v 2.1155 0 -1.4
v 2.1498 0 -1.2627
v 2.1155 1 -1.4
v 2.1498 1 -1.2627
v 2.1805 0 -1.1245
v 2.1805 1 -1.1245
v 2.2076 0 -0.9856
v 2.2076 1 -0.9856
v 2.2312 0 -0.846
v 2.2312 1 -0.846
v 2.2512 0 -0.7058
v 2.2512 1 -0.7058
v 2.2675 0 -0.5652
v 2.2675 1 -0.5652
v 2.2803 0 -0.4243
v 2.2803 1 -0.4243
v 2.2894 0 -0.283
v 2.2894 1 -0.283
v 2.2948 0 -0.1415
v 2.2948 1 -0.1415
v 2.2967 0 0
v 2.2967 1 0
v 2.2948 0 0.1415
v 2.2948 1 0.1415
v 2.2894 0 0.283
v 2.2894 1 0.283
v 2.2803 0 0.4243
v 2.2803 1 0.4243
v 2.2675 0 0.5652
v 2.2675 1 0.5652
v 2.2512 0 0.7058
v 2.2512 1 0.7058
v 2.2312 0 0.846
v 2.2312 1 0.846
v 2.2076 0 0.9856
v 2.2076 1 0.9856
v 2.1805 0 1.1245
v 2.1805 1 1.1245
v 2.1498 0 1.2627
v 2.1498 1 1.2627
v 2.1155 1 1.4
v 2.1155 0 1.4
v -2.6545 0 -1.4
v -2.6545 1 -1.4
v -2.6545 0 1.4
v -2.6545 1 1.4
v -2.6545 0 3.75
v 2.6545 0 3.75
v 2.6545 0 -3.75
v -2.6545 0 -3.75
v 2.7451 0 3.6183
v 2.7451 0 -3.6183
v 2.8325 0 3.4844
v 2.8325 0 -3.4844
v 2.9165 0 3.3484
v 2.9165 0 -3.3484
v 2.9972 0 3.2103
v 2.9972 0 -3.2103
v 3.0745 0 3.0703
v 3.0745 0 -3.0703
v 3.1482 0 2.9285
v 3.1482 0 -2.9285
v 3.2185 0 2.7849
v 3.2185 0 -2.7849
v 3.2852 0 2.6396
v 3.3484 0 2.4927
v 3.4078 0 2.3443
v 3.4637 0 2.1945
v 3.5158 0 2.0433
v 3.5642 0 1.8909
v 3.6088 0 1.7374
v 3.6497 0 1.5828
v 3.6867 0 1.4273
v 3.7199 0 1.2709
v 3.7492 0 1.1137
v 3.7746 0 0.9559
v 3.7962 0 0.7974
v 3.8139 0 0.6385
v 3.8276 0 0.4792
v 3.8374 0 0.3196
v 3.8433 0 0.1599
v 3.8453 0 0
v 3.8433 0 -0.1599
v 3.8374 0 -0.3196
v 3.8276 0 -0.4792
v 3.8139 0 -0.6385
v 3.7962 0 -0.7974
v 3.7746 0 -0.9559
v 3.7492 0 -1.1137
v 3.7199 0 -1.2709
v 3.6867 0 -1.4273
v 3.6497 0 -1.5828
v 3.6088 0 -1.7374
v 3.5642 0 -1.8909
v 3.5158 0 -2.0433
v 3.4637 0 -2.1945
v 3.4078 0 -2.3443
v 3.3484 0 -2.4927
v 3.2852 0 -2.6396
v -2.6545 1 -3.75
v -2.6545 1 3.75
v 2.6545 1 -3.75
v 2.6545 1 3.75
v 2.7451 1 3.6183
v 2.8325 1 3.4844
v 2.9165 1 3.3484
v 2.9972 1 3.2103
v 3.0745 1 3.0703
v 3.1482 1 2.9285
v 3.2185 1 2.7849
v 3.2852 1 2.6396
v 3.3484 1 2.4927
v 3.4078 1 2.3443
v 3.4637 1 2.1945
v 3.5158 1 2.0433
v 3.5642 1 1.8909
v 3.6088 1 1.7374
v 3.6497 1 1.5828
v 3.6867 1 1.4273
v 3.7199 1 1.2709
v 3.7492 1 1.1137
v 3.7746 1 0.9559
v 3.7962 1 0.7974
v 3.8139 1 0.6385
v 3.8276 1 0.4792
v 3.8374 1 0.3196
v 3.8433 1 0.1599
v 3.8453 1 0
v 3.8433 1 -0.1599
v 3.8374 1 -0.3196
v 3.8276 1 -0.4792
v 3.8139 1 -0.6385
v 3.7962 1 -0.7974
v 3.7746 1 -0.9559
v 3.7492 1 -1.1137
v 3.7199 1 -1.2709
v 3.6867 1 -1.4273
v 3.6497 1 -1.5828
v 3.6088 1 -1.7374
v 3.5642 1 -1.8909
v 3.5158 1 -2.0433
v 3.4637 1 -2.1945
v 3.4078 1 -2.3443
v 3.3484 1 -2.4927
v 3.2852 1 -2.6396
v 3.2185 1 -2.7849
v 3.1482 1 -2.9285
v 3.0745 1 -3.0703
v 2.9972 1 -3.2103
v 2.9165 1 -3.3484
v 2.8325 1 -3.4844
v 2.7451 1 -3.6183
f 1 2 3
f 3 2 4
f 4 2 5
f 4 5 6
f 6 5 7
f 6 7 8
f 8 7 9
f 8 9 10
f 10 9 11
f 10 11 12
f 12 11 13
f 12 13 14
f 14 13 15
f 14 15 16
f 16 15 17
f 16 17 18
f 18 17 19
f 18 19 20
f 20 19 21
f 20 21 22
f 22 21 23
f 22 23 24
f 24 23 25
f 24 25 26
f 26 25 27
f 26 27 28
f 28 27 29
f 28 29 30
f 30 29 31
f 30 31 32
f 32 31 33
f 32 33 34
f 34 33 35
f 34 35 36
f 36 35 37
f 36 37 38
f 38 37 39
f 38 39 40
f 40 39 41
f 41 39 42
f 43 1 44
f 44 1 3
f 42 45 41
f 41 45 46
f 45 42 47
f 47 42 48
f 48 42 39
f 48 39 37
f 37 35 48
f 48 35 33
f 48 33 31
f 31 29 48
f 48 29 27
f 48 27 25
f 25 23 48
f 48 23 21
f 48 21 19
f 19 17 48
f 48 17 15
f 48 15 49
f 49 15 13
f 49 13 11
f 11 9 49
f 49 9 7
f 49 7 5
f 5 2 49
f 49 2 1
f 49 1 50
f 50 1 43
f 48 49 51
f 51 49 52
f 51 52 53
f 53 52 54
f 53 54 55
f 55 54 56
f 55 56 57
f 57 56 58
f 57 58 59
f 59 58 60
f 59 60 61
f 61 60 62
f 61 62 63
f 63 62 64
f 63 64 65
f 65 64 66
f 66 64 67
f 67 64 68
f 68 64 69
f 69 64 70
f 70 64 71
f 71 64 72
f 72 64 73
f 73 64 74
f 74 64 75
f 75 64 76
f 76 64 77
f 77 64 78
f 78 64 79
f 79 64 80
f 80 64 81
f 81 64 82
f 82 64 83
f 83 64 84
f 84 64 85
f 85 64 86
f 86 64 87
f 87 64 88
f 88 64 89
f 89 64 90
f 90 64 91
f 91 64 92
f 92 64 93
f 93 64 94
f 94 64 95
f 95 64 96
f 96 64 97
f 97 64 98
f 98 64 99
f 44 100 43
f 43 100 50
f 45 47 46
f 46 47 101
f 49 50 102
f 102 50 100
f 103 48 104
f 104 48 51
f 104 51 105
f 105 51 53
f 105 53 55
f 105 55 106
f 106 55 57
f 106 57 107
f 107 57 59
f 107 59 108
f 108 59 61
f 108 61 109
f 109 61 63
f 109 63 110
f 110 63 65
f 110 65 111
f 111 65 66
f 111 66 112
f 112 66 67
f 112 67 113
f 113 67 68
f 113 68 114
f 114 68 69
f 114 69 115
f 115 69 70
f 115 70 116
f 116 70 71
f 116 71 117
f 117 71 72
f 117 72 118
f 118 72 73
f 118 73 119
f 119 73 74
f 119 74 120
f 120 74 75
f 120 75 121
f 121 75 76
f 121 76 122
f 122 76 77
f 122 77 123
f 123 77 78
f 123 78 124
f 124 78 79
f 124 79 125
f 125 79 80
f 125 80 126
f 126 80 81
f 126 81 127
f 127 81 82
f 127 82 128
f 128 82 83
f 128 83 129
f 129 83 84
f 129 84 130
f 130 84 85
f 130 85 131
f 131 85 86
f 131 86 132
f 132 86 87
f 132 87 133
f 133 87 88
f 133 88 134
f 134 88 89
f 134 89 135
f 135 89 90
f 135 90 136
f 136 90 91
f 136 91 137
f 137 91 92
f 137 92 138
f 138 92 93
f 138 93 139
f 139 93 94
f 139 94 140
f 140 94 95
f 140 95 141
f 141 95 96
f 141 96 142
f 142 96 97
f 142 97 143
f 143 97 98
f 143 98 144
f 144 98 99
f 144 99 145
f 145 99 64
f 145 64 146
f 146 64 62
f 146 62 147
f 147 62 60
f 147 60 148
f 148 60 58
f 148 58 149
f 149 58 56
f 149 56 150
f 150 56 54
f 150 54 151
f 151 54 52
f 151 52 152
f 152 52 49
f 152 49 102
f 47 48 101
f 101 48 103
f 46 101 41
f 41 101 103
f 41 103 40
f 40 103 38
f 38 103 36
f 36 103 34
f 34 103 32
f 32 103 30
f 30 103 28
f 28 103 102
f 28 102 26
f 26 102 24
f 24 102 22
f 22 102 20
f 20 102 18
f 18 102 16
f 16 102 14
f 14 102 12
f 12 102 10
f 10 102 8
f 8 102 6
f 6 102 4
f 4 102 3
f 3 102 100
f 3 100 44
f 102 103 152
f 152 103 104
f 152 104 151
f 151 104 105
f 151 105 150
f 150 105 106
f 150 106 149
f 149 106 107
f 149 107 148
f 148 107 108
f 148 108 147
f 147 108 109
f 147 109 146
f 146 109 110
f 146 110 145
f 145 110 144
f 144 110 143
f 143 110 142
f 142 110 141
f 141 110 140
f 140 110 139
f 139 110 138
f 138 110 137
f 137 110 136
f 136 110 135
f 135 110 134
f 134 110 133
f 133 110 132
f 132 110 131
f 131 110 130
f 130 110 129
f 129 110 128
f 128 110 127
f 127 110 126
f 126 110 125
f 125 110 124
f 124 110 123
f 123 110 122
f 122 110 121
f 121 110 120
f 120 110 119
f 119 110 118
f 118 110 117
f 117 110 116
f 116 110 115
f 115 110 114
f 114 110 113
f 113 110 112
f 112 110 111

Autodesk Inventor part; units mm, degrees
ref_plane "YZ Plane" through (0, 0, 0) normal (1, 0, 0) x (0, 1, 0)
ref_plane "XZ Plane" through (0, 0, 0) normal (0, 1, 0) x (-1, 0, 0)
ref_plane "XY Plane" through (0, 0, 0) normal (0, 0, 1) x (1, 0, 0)
sketch "Эскиз1" plane through (0, 0, 0) normal (0, 1, 0) x (-1, 0, 0)
  line L0 (2.6545, 3.75) -> (-2.6545, 3.75)
  line L1 (-2.6545, 3.75) -> (-2.6545, -3.75) construction
  line L2 (-2.6545, -3.75) -> (2.6545, -3.75)
  line L3 (2.6545, -3.75) -> (2.6545, 3.75)
  line L4 (3.9547, 0) -> (-5.1453, 0) projected
  line L5 (0, -5.25) -> (0, 5.25) projected
  arc A0 (-2.6545, 3.75) -> (-2.6545, -3.75) centre (2.6547, 0) ccw
  point P0 (0, 0)
  dimension "d0" = 5.309
  dimension "d1" = 7.5
  dimension "d2" = 6.5
extrude "Выдавливание1" add sketch "Эскиз1" along normal blind 1
sketch "Эскиз2" plane through (0, 1, 0) normal (0, 1, 0) x (1, 0, 0)
  line L0 (-2.6545, 3.75) -> (-2.6545, -3.75) projected
  line L1 (-2.6545, -1.4) -> (2.1155, -1.4)
  line L2 (2.1155, -1.4) -> (2.1155, 1.4) construction
  line L3 (2.1155, 1.4) -> (-2.6545, 1.4)
  line L4 (-2.6545, 1.4) -> (-2.6545, -1.4)
  line L5 (-4.6131, 0) -> (5.255, 0) projected
  arc A0 (2.1155, -1.4) -> (2.1155, 1.4) centre (-3.2033, 0) ccw
  point P0 (0, 0)
  dimension "d5" = 4.77
  dimension "d6" = 2.8
  dimension "d7" = 5.5
extrude "Выдавливание2" cut sketch "Эскиз2" against normal through all
properties part number "BUTTON_TOP"
